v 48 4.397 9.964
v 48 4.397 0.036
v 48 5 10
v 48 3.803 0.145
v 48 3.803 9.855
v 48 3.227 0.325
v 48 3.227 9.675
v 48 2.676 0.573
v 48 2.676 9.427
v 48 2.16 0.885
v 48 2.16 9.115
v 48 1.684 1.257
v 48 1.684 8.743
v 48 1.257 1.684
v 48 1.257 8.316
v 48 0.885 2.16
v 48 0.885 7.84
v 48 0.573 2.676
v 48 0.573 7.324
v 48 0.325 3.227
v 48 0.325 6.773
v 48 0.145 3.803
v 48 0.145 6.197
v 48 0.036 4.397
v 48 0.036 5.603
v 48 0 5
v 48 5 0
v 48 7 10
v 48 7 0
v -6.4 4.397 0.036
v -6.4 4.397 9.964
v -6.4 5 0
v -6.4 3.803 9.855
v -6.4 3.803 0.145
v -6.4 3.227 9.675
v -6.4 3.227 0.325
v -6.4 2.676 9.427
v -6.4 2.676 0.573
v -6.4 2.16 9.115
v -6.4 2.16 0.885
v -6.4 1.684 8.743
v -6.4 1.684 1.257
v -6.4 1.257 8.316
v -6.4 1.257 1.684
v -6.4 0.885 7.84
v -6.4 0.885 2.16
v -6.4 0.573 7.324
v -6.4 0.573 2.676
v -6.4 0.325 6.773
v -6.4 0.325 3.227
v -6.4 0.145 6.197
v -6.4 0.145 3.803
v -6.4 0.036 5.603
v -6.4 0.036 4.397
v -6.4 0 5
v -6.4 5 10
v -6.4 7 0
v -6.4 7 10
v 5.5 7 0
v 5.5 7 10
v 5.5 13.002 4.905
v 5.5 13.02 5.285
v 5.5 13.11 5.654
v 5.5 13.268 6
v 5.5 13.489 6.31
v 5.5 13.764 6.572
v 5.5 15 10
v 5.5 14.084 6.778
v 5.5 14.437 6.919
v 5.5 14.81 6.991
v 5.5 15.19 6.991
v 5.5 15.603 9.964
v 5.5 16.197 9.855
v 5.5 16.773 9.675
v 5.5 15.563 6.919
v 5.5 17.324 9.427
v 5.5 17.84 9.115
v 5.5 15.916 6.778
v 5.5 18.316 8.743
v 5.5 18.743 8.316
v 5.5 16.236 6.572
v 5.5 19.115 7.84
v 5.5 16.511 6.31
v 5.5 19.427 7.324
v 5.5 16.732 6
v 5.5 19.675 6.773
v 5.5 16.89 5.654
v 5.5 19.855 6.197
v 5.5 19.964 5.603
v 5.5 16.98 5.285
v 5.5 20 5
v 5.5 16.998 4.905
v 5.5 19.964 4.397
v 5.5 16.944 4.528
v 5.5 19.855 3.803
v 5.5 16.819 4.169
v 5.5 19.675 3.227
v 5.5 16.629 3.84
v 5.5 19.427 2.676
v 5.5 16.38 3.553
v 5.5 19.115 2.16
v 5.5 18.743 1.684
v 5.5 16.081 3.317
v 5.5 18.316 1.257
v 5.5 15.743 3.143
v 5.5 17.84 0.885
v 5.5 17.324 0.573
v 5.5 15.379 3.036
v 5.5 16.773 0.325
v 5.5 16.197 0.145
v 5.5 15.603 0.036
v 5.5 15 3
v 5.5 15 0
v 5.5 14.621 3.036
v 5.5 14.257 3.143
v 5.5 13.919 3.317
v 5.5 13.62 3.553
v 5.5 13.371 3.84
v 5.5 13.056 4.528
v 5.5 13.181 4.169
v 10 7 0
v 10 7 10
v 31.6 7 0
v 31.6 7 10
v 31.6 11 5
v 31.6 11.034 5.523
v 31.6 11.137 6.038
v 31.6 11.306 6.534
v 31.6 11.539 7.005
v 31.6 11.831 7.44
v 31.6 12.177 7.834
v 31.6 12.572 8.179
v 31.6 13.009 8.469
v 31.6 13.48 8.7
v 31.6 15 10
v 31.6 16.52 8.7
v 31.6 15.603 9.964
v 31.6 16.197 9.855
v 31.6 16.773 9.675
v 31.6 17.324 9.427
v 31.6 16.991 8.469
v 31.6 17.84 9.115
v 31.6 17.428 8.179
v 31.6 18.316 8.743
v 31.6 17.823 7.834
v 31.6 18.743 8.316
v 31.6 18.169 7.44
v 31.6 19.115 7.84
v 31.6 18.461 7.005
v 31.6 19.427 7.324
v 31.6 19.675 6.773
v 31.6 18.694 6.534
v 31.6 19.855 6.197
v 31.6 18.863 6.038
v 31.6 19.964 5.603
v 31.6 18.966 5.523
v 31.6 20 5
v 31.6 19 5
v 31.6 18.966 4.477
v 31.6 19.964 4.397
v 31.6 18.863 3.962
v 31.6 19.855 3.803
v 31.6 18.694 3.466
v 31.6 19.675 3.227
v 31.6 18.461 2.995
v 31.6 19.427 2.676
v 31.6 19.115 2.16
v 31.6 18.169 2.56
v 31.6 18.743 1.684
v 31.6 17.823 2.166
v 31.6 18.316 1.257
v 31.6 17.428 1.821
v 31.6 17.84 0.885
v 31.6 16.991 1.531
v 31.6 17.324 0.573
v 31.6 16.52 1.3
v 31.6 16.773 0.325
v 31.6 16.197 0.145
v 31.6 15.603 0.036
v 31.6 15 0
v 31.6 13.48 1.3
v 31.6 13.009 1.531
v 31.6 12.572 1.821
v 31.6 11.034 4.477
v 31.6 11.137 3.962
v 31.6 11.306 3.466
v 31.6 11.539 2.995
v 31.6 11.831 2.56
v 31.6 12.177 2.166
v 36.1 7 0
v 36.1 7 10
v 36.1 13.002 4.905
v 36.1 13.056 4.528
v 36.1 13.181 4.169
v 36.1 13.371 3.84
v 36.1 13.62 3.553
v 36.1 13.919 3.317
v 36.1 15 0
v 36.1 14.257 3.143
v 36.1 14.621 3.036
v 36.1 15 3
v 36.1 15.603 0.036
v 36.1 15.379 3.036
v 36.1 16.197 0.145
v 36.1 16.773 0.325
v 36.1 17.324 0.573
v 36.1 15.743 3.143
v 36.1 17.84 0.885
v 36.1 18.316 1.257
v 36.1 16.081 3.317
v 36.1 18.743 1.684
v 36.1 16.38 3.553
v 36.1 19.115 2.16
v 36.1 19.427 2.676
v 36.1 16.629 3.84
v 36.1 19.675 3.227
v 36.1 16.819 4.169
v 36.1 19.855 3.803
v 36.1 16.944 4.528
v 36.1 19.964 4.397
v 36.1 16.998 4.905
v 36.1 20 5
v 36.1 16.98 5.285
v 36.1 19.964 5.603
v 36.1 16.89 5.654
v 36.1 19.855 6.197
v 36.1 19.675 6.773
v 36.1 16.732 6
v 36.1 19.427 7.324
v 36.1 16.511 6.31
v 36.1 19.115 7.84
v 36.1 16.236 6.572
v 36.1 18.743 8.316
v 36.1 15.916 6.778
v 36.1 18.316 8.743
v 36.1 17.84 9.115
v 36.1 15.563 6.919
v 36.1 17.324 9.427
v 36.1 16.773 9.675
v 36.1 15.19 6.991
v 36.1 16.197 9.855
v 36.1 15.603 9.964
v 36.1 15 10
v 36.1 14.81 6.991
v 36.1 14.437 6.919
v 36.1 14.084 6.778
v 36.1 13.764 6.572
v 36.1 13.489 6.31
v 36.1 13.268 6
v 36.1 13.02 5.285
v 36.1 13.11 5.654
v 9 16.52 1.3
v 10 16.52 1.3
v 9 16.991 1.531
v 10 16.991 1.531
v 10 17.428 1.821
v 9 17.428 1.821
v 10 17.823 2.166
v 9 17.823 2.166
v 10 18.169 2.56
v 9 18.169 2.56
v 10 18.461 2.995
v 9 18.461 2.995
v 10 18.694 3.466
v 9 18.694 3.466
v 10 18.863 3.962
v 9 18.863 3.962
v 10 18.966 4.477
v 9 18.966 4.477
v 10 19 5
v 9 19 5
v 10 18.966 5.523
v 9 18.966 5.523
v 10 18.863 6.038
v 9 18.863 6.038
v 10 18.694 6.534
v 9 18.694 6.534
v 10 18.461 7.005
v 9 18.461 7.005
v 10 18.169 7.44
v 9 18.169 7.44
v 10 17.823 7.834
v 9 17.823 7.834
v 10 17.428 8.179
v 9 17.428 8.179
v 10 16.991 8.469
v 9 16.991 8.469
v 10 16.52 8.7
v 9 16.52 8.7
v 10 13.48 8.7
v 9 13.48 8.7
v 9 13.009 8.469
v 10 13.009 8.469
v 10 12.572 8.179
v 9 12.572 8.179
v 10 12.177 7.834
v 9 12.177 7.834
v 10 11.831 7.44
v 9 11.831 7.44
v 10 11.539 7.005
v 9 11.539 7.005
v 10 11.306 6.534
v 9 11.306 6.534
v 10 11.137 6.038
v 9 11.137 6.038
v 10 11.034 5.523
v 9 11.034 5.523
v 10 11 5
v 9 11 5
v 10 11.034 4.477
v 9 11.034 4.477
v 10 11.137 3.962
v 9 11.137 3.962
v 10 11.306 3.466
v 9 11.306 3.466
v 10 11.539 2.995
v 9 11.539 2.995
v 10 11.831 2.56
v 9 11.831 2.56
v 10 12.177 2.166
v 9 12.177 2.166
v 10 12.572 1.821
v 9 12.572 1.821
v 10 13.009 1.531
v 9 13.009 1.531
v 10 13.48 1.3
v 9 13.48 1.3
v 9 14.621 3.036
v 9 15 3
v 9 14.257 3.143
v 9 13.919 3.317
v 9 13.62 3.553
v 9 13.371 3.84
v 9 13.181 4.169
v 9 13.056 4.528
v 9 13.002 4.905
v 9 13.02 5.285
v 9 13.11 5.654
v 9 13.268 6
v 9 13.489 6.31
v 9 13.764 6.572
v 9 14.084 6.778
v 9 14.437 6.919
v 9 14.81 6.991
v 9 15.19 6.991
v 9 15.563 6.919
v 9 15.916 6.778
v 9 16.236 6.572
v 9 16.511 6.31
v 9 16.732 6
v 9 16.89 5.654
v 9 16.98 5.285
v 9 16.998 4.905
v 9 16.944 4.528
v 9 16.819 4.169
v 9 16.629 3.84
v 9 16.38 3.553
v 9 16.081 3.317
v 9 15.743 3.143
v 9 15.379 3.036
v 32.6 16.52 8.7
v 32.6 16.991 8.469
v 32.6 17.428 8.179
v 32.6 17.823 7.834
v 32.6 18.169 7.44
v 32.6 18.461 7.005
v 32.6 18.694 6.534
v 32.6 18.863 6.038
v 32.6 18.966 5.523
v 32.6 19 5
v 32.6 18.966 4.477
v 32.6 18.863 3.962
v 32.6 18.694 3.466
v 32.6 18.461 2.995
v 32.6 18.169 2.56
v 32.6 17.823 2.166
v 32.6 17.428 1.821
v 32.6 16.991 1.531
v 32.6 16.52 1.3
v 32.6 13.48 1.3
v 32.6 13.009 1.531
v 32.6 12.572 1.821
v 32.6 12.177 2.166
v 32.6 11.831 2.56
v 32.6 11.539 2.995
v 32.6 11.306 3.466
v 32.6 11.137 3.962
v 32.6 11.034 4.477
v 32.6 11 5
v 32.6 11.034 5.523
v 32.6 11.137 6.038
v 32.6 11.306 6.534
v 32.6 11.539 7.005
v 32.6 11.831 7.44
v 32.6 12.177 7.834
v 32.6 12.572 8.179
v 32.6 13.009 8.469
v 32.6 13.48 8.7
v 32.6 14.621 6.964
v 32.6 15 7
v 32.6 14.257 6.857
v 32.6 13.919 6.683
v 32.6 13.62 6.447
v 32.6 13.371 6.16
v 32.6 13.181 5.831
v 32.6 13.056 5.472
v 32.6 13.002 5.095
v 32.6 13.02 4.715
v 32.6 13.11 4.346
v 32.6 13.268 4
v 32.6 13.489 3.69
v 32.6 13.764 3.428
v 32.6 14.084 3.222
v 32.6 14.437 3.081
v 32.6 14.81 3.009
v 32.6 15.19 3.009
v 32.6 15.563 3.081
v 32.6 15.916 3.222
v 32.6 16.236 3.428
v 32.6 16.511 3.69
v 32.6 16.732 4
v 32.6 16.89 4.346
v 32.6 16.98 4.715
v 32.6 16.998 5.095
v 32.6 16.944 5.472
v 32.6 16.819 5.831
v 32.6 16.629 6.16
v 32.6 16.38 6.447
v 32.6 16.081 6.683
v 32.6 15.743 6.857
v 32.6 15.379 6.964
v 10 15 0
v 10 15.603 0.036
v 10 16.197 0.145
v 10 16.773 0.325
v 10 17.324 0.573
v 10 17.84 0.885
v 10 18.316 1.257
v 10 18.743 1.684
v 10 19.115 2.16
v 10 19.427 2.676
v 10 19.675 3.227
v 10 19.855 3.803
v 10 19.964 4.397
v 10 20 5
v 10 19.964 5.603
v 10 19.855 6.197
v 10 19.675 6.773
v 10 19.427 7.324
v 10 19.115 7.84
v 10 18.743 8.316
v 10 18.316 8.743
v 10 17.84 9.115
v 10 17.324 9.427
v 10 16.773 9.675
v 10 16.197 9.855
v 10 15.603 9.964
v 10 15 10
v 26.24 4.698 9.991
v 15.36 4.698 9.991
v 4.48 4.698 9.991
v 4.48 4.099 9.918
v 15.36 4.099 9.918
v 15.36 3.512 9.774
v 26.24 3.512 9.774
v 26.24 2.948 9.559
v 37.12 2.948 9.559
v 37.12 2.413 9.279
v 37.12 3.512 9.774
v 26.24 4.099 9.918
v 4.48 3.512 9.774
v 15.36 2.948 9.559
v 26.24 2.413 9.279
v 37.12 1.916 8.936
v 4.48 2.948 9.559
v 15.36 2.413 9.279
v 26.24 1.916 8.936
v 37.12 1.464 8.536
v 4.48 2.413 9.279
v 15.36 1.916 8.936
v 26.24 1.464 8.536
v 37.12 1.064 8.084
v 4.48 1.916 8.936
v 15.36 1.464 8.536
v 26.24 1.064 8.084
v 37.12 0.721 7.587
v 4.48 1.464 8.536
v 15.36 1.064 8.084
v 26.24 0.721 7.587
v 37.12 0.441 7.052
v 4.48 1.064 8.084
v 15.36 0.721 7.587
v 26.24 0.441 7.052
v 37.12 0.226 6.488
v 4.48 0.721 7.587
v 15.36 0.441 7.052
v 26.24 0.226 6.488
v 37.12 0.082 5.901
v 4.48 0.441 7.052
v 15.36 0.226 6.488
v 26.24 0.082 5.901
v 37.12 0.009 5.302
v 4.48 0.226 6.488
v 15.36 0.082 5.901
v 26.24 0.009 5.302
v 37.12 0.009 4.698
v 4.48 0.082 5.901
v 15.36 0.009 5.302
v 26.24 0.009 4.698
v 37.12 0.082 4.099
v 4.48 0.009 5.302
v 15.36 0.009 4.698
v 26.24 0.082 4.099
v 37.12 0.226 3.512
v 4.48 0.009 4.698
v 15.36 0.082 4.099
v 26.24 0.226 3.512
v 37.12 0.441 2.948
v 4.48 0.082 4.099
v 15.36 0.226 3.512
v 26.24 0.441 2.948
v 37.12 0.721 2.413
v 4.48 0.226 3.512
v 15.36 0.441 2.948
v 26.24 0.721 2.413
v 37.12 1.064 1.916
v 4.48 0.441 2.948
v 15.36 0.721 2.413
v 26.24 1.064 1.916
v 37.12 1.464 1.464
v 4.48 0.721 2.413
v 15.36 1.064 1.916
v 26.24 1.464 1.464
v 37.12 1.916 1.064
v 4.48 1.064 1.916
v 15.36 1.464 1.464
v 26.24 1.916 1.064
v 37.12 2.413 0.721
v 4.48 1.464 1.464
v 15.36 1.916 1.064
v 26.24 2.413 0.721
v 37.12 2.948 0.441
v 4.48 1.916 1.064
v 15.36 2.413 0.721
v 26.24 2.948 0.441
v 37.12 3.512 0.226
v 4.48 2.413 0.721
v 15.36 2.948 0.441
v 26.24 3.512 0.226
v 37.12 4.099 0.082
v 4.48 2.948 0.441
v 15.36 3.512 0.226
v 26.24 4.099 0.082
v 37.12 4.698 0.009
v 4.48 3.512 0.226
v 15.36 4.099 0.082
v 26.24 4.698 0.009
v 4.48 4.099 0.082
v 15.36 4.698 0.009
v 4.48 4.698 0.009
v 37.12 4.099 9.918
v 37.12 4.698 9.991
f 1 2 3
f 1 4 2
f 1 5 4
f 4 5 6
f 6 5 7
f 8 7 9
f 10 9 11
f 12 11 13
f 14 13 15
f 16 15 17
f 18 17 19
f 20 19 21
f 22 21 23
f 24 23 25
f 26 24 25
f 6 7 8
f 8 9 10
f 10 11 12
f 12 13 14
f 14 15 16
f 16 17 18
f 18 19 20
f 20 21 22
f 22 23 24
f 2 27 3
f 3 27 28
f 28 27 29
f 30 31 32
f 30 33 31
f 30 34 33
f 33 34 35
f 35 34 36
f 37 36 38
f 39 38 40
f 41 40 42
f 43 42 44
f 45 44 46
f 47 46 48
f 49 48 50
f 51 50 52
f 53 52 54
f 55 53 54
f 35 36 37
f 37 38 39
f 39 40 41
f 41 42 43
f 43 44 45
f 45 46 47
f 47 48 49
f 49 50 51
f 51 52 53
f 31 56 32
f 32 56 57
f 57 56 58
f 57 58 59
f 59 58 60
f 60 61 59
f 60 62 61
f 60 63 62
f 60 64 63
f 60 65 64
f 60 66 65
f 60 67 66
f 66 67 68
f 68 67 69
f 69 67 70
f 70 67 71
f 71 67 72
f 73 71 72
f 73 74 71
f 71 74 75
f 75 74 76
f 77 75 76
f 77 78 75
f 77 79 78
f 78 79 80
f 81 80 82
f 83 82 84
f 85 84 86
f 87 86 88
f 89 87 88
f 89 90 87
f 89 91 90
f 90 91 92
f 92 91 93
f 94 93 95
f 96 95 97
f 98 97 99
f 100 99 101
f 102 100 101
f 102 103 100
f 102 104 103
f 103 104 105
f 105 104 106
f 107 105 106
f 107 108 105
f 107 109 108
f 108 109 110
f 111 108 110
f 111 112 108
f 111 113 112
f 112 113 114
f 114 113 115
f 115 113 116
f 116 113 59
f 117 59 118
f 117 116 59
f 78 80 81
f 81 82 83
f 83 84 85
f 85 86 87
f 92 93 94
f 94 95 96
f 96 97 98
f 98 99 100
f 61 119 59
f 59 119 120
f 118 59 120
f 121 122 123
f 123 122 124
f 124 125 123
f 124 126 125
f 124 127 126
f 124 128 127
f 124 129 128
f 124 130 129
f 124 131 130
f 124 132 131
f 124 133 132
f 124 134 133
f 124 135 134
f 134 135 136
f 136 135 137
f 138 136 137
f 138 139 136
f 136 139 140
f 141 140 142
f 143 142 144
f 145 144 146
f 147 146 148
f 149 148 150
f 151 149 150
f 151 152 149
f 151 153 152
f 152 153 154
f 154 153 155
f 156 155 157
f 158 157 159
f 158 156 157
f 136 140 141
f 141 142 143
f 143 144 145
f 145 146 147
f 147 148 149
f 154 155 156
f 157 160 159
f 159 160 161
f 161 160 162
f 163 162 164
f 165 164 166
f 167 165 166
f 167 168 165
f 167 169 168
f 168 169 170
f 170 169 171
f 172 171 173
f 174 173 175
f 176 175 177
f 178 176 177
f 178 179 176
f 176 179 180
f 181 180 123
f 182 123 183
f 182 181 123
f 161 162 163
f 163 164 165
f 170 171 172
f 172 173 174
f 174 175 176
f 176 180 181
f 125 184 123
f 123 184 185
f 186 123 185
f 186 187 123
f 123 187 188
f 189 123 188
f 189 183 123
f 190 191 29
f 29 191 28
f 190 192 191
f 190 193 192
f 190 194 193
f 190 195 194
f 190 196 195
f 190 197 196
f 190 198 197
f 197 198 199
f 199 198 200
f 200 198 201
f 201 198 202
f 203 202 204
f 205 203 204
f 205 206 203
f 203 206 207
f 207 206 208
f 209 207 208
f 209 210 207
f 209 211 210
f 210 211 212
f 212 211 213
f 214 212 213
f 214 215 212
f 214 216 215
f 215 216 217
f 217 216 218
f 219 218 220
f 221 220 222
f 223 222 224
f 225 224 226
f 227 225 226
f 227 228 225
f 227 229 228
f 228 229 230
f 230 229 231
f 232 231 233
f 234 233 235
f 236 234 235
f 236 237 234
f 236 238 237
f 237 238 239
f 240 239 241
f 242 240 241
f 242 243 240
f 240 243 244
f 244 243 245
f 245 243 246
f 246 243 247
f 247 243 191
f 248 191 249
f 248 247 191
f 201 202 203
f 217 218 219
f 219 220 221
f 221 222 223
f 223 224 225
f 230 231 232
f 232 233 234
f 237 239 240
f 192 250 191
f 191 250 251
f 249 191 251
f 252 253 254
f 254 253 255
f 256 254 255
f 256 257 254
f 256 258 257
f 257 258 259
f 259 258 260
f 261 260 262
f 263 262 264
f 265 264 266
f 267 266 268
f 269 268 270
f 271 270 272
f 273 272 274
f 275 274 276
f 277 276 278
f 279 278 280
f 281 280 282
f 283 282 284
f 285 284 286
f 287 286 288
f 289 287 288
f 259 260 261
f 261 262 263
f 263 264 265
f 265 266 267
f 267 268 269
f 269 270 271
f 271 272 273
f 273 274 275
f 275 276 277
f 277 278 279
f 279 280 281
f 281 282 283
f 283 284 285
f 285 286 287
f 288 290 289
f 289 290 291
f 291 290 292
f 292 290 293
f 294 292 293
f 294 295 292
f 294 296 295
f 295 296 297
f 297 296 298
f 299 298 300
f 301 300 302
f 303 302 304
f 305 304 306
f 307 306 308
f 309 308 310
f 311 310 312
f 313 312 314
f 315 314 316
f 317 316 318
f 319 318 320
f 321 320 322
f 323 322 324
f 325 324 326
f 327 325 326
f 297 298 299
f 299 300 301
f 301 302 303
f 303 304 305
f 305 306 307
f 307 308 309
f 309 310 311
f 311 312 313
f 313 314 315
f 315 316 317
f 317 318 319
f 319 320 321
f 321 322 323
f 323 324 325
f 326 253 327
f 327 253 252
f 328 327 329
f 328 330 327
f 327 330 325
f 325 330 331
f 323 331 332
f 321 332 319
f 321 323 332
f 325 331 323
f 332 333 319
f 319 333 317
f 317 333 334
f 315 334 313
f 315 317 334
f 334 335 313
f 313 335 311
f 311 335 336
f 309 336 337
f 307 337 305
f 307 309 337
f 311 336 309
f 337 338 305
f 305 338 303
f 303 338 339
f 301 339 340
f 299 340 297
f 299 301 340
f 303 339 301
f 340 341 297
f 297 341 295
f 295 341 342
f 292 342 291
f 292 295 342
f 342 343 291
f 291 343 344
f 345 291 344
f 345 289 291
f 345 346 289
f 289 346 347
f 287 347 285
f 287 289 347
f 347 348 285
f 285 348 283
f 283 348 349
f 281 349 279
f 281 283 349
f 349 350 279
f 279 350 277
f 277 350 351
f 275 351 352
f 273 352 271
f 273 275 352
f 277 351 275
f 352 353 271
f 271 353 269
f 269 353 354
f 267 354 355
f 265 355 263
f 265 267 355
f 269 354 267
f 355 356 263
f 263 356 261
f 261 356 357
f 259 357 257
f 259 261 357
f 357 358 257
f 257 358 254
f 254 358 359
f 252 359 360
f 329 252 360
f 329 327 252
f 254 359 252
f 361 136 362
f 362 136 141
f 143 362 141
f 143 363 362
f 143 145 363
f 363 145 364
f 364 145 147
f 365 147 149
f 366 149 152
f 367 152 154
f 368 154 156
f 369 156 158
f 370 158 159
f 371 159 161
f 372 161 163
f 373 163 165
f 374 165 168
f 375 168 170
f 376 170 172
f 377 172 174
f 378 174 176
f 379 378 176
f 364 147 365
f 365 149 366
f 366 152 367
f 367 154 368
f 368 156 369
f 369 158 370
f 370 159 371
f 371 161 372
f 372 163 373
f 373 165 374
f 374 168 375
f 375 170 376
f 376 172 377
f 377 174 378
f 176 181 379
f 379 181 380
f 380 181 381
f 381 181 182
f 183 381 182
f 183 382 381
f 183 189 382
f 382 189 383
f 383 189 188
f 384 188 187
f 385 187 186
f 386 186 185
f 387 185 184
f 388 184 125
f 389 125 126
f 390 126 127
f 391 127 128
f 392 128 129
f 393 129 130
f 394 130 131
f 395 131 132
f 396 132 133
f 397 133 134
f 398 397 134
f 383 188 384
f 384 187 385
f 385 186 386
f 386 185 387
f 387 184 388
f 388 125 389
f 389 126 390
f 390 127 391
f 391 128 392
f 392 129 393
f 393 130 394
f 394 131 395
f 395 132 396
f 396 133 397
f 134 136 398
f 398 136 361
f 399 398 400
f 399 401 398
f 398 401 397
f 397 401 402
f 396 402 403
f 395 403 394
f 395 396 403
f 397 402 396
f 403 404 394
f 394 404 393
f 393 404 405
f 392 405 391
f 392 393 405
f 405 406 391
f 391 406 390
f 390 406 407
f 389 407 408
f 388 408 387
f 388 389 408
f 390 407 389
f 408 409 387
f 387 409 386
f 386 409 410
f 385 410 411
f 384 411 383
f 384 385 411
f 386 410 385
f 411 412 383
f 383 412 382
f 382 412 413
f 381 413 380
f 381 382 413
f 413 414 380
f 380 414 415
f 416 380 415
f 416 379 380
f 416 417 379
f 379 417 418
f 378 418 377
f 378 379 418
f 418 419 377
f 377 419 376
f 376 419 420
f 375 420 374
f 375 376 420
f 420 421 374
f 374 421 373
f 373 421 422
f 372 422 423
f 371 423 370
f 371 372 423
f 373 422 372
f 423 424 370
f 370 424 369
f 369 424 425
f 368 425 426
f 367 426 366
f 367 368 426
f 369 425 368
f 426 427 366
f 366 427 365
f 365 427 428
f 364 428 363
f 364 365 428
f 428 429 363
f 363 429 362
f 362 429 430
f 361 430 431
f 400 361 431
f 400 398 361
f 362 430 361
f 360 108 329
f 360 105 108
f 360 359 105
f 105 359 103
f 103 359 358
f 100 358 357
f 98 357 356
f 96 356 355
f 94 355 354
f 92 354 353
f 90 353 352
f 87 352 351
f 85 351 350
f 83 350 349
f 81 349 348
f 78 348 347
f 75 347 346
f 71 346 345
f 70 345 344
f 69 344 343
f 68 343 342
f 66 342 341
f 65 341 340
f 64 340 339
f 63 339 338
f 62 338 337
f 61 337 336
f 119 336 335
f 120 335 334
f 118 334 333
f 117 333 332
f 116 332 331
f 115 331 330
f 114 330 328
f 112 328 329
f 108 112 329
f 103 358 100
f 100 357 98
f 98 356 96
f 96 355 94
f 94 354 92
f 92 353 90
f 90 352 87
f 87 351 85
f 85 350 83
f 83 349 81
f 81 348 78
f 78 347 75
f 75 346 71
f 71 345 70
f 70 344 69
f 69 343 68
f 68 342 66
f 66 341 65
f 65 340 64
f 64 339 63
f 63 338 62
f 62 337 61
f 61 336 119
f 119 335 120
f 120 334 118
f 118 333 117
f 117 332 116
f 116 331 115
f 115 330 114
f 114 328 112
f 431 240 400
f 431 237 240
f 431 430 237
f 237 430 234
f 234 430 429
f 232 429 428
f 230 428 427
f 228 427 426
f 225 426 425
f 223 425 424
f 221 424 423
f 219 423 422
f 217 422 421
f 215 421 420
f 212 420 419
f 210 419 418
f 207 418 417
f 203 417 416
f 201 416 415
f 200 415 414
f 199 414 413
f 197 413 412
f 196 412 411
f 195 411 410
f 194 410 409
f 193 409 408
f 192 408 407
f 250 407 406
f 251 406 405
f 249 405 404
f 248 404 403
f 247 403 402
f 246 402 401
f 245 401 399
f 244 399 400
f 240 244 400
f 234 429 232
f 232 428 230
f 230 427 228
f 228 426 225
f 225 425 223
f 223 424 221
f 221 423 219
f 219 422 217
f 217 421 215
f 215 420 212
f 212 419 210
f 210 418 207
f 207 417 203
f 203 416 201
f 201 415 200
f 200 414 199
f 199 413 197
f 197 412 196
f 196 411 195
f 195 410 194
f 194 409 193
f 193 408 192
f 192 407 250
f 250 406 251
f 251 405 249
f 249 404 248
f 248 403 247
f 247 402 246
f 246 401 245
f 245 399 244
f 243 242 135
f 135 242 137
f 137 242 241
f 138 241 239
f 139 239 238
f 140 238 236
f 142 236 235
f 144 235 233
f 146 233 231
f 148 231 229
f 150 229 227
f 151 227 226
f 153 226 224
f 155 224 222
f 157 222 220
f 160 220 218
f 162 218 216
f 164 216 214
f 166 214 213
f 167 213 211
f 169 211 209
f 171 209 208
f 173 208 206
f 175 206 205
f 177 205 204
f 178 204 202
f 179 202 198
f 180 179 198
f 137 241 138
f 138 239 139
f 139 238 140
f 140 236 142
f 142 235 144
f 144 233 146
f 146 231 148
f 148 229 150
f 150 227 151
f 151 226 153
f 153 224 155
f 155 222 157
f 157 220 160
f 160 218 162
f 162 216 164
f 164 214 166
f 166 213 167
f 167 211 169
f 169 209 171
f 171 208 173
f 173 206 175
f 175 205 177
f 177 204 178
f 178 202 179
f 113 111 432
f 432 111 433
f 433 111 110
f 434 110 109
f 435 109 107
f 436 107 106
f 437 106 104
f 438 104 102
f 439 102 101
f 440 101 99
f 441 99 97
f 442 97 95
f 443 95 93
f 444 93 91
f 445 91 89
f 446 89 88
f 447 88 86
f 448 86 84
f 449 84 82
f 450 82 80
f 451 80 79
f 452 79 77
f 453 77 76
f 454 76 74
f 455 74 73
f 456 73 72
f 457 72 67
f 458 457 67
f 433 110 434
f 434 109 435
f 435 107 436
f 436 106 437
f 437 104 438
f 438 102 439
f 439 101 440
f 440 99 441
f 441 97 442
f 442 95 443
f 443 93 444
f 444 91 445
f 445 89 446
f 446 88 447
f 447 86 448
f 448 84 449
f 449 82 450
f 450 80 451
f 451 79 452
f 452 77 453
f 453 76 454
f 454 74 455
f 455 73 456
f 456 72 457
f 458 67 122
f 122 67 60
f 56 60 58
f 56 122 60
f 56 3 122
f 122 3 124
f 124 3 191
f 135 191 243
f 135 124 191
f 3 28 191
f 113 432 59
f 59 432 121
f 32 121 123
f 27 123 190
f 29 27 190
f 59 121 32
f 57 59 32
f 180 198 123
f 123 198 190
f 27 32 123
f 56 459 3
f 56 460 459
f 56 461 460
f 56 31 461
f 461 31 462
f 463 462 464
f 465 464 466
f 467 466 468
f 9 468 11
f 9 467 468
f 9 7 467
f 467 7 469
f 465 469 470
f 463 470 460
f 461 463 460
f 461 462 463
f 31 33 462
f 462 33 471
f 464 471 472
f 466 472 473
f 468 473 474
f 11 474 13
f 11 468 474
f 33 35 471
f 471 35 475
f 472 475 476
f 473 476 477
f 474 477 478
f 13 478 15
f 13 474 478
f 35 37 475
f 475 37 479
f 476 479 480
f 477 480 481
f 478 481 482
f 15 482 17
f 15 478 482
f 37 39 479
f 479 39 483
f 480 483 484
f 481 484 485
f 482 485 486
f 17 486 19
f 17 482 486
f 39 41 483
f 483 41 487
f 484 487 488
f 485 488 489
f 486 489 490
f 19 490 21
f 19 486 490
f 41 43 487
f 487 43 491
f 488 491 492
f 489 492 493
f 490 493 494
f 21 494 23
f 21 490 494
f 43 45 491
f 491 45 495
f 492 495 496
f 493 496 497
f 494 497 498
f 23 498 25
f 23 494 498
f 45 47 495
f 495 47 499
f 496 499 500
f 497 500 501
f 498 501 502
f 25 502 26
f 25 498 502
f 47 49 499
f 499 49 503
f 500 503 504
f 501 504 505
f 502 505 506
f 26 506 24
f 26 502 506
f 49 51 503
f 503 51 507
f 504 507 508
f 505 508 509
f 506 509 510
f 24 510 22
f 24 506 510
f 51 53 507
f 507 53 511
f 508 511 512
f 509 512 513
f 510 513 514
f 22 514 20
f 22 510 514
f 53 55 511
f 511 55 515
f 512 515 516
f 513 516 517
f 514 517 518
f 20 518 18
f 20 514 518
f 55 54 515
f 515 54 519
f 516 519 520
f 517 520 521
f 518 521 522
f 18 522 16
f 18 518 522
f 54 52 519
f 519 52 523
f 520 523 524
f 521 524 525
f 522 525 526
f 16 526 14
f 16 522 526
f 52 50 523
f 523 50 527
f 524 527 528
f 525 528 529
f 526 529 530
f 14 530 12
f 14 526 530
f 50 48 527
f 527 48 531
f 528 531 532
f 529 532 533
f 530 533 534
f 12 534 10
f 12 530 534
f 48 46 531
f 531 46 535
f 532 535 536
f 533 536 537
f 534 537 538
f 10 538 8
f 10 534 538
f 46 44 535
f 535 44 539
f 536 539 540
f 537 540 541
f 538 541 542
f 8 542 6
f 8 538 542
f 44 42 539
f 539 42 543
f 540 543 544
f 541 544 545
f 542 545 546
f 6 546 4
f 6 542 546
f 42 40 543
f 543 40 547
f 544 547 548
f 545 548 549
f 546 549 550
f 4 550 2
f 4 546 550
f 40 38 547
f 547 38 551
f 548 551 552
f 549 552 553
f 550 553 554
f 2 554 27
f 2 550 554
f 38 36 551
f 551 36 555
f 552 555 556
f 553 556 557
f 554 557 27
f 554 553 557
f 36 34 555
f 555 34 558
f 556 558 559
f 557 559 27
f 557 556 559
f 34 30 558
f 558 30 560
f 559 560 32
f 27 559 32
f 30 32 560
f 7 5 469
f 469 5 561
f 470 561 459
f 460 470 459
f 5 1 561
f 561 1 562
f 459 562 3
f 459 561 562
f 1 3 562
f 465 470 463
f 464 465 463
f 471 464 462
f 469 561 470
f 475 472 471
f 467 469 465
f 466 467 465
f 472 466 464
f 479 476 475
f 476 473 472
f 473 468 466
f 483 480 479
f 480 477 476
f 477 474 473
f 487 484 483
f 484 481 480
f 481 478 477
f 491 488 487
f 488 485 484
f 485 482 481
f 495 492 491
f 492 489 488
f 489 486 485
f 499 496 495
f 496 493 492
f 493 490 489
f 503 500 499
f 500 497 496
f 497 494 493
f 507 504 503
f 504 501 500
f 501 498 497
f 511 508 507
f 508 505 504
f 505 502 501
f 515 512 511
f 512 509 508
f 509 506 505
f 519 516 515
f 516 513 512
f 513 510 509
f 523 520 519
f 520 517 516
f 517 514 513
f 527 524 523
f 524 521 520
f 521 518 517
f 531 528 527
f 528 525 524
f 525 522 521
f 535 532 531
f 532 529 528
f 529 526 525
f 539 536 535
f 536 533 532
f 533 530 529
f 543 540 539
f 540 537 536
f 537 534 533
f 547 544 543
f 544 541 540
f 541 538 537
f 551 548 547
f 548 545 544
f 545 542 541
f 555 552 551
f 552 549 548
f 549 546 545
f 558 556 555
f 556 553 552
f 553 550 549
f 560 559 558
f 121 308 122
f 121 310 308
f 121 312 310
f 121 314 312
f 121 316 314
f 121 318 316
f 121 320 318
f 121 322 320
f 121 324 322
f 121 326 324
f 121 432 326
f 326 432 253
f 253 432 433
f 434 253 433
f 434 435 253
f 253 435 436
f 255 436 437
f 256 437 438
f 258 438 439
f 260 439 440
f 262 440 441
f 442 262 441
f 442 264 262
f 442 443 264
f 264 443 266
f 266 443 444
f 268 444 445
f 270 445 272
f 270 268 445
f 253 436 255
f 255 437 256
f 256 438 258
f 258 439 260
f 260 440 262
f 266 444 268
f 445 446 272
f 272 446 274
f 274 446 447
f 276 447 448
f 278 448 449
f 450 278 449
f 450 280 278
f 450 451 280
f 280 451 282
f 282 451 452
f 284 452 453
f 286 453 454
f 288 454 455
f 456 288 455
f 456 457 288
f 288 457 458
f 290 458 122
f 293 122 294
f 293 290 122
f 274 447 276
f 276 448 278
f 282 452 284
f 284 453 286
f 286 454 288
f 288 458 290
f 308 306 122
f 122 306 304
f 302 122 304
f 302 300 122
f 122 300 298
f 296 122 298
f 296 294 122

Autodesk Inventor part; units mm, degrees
ref_plane "YZ Plane" through (0, 0, 0) normal (1, 0, 0) x (0, 1, 0)
ref_plane "XZ Plane" through (0, 0, 0) normal (0, 1, 0) x (-1, 0, 0)
ref_plane "XY Plane" through (0, 0, 0) normal (0, 0, 1) x (1, 0, 0)
sketch "Sketch1" plane through (0, 0, 0) normal (0, 0, 1) x (1, 0, 0)
  line L0 (0, 0) -> (41.6, 0)
  line L1 (41.6, 0) -> (41.6, 20)
  line L2 (41.6, 20) -> (0, 20)
  line L3 (0, 20) -> (0, 0)
  dimension "d0" = 41.6
  dimension "d1" = 20
extrude "Extrusion1" add sketch "Sketch1" along normal blind 10
sketch "Sketch3" plane through (0, 0, 10) normal (0, 0, 1) x (1, 0, 0)
  line L0 (0, 20) -> (5, 20)
  line L1 (5, 20) -> (5, 10)
  line L2 (5, 10) -> (0, 10)
  line L3 (0, 10) -> (0, 20)
  line L4 (41.6, 20) -> (36.6, 20)
  line L5 (36.6, 20) -> (36.6, 10)
  line L6 (36.6, 10) -> (41.6, 10)
  line L7 (41.6, 10) -> (41.6, 20)
  dimension "d7" = 5
  dimension "d8" = 5
  dimension "d9" = 10
extrude "Extrusion2" cut sketch "Sketch3" against normal through all
sketch "Sketch4" plane through (0, 0, 10) normal (0, 0, 1) x (1, 0, 0)
  line L0 (36.6, 20) -> (5, 20) projected
  line L1 (5, 20) -> (5, 10) projected
  line L2 (10, 20) -> (31.6, 20)
  line L3 (31.6, 20) -> (31.6, 10)
  line L4 (31.6, 10) -> (10, 10)
  line L5 (10, 10) -> (10, 20)
  dimension "d12" = 21.6
  dimension "d13" = 10
  dimension "d14" = 5
extrude "Extrusion3" cut sketch "Sketch4" against normal through all
fillet "Fillet1" radius 5 6 edges at (20.8, 0, 0) (20.8, 0, 10) (34.1, 20, 10) (34.1, 20, 0) (7.5, 20, 0) (7.5, 20, 10)
sketch "Sketch5" plane through (10, 10, 10) normal (0, 1, 0) x (1, 0, 0)
  line L0 (0, 10) -> (21.6, 10) projected
  line L1 (0, 0) -> (0, 10) projected
  line L2 (21.6, 0) -> (0, 0) projected
  line L3 (21.6, 0) -> (21.6, 10) projected
  point P0 (-10, 10)
extrude "Extrusion4" cut sketch "Sketch5" against normal blind 5
sketch "Sketch6" plane through (36.6, 10, 10) normal (0, 1, 0) x (1, 0, 0)
  line L0 (0, 10) -> (5, 10) projected
  line L1 (0, 0) -> (0, 10) projected
  line L2 (5, 0) -> (0, 0) projected
  line L3 (5, 10) -> (5, 0) projected
  point P0 (-36.6, 10)
extrude "Extrusion5" cut sketch "Sketch6" against normal blind 5
sketch "Sketch7" plane through (0, 10, 10) normal (0, 1, 0) x (1, 0, 0)
  line L0 (0, 10) -> (5, 10) projected
  line L1 (0, 0) -> (0, 10) projected
  line L2 (5, 0) -> (0, 0) projected
  line L3 (5, 0) -> (5, 10) projected
extrude "Extrusion6" cut sketch "Sketch7" against normal blind 5
sketch "Sketch8" plane through (5, 15, 5) normal (-1, 0, 0) x (0, 0, 1)
  arc A0 (5, 0) -> (-5, 0) centre (0, 0) ccw projected
  line L0 (-5, -10) -> (-5, 0) projected
  line L1 (-5, -10) -> (5, -10) projected
  line L2 (5, 0) -> (5, -10) projected
  point P0 (-5, -15)
extrude "Extrusion7" cut sketch "Sketch8" against normal blind 0.5
sketch "Sketch9" plane through (36.6, 15, 5) normal (1, 0, 0) x (0, 0, -1)
  arc A0 (5, 0) -> (-5, 0) centre (0, 0) ccw projected
  line L0 (-5, -10) -> (-5, 0) projected
  line L1 (-5, -10) -> (5, -10) projected
  line L2 (5, 0) -> (5, -10) projected
  point P0 (5, -15)
extrude "Extrusion8" cut sketch "Sketch9" against normal blind 0.5
sketch "Sketch10" plane through (36.1, 15, 5) normal (1, 0, 0) x (0, 0, -1)
  arc A0 (5, 0) -> (-5, 0) centre (0, 0) ccw projected
  circle A1 centre (0, 0) radius 2
  point P0 (5, -15)
  dimension "d28" = 4
extrude "Extrusion9" cut sketch "Sketch10" against normal through all
sketch "Sketch11" plane through (31.6, 15, 5) normal (-1, 0, 0) x (0, 0, 1)
  circle A0 centre (0, 0) radius 2 projected
  arc A1 (5, 0) -> (-5, 0) centre (0, 0) ccw projected
  line L0 (5, 0) -> (5, -10) projected
  line L1 (-3.7, 1.5199) -> (-3.7, -1.5199)
  line L2 (3.7, 1.5199) -> (3.7, -1.5199)
  arc A2 (-3.7, -1.5199) -> (3.7, -1.5199) centre (0, 0) ccw
  arc A3 (3.7, 1.5199) -> (-3.7, 1.5199) centre (0, 0) ccw
  point P0 (-5, -15)
  dimension "d33" = 3.7
extrude "Extrusion10" cut sketch "Sketch11" against normal blind 1
sketch "Sketch12" plane through (10, 15, 5) normal (1, 0, 0) x (0, 0, -1)
  circle A0 centre (0, 0) radius 2 projected
  arc A1 (5, 0) -> (-5, 0) centre (0, 0) ccw projected
  line L0 (5, 0) -> (5, -10) projected
  line L1 (3.7, 1.5199) -> (3.7, -1.5199)
  line L2 (-3.7, 1.5199) -> (-3.7, -1.5199)
  arc A2 (-3.7, -1.5199) -> (3.7, -1.5199) centre (0, 0) ccw
  arc A3 (3.7, 1.5199) -> (-3.7, 1.5199) centre (0, 0) ccw
  point P0 (5, -15)
  dimension "d37" = 3.7
extrude "Extrusion11" cut sketch "Sketch12" against normal blind 1
sketch "Sketch13" plane through (41.6, 5, 5) normal (1, 0, 0) x (0, 0, -1)
  line L0 (5, 0) -> (-5, 0) projected
  arc A0 (-5, 0) -> (5, 0) centre (0, 0) ccw projected
  point P0 (5, -5)
extrude "Extrusion12" add sketch "Sketch13" along normal blind 1
sketch "Sketch14" plane through (0, 5, 5) normal (-1, 0, 0) x (0, 0, 1)
  line L0 (5, 0) -> (-5, 0) projected
  arc A0 (-5, 0) -> (5, 0) centre (0, 0) ccw projected
  point P0 (-5, -5)
extrude "Extrusion13" add sketch "Sketch14" along normal blind 1
sketch "Sketch15" plane through (36.6, 5, 10) normal (0, 1, 0) x (1, 0, 0)
  line L0 (-0.5, 10) -> (6, 10) projected
  line L1 (-0.5, 10) -> (-0.5, 0) projected
  line L2 (-0.5, 0) -> (6, 0) projected
  line L3 (6, 10) -> (6, 0) projected
  point P0 (-36.6, 10)
extrude "Extrusion14" add sketch "Sketch15" along normal blind 2
sketch "Sketch16" plane through (10, 5, 10) normal (0, 1, 0) x (1, 0, 0)
  line L0 (0, 10) -> (21.6, 10) projected
  line L1 (0, 0) -> (0, 10) projected
  line L2 (21.6, 0) -> (0, 0) projected
  line L3 (21.6, 10) -> (21.6, 0) projected
  point P0 (-10, 10)
extrude "Extrusion15" add sketch "Sketch16" along normal blind 2
sketch "Sketch17" plane through (0, 5, 10) normal (0, 1, 0) x (1, 0, 0)
  line L0 (-1, 10) -> (5.5, 10) projected
  line L1 (-1, 0) -> (-1, 10) projected
  line L2 (5.5, 0) -> (-1, 0) projected
  line L3 (5.5, 0) -> (5.5, 10) projected
  point P0 (0, 10)
extrude "Extrusion16" add sketch "Sketch17" along normal blind 2
sketch "Sketch18" plane through (-1, 5, 5) normal (-1, 0, 0) x (0, 0, 1)
  arc A0 (-5, 0) -> (5, 0) centre (0, 0) ccw projected
  line L0 (5, 0) -> (5, 2) projected
  line L1 (-5, 2) -> (5, 2) projected
  line L2 (-5, 0) -> (-5, 2) projected
  point P0 (-5, -5)
extrude "Extrusion17" add sketch "Sketch18" along normal blind 5.4
sketch "Sketch19" plane through (42.6, 5, 5) normal (1, 0, 0) x (0, 0, -1)
  arc A0 (-5, 0) -> (5, 0) centre (0, 0) ccw projected
  line L0 (5, 0) -> (5, 2) projected
  line L1 (-5, 2) -> (5, 2) projected
  line L2 (-5, 0) -> (-5, 2) projected
  point P0 (5, -5)
extrude "Extrusion18" add sketch "Sketch19" along normal blind 5.4
properties part number "Slide"
